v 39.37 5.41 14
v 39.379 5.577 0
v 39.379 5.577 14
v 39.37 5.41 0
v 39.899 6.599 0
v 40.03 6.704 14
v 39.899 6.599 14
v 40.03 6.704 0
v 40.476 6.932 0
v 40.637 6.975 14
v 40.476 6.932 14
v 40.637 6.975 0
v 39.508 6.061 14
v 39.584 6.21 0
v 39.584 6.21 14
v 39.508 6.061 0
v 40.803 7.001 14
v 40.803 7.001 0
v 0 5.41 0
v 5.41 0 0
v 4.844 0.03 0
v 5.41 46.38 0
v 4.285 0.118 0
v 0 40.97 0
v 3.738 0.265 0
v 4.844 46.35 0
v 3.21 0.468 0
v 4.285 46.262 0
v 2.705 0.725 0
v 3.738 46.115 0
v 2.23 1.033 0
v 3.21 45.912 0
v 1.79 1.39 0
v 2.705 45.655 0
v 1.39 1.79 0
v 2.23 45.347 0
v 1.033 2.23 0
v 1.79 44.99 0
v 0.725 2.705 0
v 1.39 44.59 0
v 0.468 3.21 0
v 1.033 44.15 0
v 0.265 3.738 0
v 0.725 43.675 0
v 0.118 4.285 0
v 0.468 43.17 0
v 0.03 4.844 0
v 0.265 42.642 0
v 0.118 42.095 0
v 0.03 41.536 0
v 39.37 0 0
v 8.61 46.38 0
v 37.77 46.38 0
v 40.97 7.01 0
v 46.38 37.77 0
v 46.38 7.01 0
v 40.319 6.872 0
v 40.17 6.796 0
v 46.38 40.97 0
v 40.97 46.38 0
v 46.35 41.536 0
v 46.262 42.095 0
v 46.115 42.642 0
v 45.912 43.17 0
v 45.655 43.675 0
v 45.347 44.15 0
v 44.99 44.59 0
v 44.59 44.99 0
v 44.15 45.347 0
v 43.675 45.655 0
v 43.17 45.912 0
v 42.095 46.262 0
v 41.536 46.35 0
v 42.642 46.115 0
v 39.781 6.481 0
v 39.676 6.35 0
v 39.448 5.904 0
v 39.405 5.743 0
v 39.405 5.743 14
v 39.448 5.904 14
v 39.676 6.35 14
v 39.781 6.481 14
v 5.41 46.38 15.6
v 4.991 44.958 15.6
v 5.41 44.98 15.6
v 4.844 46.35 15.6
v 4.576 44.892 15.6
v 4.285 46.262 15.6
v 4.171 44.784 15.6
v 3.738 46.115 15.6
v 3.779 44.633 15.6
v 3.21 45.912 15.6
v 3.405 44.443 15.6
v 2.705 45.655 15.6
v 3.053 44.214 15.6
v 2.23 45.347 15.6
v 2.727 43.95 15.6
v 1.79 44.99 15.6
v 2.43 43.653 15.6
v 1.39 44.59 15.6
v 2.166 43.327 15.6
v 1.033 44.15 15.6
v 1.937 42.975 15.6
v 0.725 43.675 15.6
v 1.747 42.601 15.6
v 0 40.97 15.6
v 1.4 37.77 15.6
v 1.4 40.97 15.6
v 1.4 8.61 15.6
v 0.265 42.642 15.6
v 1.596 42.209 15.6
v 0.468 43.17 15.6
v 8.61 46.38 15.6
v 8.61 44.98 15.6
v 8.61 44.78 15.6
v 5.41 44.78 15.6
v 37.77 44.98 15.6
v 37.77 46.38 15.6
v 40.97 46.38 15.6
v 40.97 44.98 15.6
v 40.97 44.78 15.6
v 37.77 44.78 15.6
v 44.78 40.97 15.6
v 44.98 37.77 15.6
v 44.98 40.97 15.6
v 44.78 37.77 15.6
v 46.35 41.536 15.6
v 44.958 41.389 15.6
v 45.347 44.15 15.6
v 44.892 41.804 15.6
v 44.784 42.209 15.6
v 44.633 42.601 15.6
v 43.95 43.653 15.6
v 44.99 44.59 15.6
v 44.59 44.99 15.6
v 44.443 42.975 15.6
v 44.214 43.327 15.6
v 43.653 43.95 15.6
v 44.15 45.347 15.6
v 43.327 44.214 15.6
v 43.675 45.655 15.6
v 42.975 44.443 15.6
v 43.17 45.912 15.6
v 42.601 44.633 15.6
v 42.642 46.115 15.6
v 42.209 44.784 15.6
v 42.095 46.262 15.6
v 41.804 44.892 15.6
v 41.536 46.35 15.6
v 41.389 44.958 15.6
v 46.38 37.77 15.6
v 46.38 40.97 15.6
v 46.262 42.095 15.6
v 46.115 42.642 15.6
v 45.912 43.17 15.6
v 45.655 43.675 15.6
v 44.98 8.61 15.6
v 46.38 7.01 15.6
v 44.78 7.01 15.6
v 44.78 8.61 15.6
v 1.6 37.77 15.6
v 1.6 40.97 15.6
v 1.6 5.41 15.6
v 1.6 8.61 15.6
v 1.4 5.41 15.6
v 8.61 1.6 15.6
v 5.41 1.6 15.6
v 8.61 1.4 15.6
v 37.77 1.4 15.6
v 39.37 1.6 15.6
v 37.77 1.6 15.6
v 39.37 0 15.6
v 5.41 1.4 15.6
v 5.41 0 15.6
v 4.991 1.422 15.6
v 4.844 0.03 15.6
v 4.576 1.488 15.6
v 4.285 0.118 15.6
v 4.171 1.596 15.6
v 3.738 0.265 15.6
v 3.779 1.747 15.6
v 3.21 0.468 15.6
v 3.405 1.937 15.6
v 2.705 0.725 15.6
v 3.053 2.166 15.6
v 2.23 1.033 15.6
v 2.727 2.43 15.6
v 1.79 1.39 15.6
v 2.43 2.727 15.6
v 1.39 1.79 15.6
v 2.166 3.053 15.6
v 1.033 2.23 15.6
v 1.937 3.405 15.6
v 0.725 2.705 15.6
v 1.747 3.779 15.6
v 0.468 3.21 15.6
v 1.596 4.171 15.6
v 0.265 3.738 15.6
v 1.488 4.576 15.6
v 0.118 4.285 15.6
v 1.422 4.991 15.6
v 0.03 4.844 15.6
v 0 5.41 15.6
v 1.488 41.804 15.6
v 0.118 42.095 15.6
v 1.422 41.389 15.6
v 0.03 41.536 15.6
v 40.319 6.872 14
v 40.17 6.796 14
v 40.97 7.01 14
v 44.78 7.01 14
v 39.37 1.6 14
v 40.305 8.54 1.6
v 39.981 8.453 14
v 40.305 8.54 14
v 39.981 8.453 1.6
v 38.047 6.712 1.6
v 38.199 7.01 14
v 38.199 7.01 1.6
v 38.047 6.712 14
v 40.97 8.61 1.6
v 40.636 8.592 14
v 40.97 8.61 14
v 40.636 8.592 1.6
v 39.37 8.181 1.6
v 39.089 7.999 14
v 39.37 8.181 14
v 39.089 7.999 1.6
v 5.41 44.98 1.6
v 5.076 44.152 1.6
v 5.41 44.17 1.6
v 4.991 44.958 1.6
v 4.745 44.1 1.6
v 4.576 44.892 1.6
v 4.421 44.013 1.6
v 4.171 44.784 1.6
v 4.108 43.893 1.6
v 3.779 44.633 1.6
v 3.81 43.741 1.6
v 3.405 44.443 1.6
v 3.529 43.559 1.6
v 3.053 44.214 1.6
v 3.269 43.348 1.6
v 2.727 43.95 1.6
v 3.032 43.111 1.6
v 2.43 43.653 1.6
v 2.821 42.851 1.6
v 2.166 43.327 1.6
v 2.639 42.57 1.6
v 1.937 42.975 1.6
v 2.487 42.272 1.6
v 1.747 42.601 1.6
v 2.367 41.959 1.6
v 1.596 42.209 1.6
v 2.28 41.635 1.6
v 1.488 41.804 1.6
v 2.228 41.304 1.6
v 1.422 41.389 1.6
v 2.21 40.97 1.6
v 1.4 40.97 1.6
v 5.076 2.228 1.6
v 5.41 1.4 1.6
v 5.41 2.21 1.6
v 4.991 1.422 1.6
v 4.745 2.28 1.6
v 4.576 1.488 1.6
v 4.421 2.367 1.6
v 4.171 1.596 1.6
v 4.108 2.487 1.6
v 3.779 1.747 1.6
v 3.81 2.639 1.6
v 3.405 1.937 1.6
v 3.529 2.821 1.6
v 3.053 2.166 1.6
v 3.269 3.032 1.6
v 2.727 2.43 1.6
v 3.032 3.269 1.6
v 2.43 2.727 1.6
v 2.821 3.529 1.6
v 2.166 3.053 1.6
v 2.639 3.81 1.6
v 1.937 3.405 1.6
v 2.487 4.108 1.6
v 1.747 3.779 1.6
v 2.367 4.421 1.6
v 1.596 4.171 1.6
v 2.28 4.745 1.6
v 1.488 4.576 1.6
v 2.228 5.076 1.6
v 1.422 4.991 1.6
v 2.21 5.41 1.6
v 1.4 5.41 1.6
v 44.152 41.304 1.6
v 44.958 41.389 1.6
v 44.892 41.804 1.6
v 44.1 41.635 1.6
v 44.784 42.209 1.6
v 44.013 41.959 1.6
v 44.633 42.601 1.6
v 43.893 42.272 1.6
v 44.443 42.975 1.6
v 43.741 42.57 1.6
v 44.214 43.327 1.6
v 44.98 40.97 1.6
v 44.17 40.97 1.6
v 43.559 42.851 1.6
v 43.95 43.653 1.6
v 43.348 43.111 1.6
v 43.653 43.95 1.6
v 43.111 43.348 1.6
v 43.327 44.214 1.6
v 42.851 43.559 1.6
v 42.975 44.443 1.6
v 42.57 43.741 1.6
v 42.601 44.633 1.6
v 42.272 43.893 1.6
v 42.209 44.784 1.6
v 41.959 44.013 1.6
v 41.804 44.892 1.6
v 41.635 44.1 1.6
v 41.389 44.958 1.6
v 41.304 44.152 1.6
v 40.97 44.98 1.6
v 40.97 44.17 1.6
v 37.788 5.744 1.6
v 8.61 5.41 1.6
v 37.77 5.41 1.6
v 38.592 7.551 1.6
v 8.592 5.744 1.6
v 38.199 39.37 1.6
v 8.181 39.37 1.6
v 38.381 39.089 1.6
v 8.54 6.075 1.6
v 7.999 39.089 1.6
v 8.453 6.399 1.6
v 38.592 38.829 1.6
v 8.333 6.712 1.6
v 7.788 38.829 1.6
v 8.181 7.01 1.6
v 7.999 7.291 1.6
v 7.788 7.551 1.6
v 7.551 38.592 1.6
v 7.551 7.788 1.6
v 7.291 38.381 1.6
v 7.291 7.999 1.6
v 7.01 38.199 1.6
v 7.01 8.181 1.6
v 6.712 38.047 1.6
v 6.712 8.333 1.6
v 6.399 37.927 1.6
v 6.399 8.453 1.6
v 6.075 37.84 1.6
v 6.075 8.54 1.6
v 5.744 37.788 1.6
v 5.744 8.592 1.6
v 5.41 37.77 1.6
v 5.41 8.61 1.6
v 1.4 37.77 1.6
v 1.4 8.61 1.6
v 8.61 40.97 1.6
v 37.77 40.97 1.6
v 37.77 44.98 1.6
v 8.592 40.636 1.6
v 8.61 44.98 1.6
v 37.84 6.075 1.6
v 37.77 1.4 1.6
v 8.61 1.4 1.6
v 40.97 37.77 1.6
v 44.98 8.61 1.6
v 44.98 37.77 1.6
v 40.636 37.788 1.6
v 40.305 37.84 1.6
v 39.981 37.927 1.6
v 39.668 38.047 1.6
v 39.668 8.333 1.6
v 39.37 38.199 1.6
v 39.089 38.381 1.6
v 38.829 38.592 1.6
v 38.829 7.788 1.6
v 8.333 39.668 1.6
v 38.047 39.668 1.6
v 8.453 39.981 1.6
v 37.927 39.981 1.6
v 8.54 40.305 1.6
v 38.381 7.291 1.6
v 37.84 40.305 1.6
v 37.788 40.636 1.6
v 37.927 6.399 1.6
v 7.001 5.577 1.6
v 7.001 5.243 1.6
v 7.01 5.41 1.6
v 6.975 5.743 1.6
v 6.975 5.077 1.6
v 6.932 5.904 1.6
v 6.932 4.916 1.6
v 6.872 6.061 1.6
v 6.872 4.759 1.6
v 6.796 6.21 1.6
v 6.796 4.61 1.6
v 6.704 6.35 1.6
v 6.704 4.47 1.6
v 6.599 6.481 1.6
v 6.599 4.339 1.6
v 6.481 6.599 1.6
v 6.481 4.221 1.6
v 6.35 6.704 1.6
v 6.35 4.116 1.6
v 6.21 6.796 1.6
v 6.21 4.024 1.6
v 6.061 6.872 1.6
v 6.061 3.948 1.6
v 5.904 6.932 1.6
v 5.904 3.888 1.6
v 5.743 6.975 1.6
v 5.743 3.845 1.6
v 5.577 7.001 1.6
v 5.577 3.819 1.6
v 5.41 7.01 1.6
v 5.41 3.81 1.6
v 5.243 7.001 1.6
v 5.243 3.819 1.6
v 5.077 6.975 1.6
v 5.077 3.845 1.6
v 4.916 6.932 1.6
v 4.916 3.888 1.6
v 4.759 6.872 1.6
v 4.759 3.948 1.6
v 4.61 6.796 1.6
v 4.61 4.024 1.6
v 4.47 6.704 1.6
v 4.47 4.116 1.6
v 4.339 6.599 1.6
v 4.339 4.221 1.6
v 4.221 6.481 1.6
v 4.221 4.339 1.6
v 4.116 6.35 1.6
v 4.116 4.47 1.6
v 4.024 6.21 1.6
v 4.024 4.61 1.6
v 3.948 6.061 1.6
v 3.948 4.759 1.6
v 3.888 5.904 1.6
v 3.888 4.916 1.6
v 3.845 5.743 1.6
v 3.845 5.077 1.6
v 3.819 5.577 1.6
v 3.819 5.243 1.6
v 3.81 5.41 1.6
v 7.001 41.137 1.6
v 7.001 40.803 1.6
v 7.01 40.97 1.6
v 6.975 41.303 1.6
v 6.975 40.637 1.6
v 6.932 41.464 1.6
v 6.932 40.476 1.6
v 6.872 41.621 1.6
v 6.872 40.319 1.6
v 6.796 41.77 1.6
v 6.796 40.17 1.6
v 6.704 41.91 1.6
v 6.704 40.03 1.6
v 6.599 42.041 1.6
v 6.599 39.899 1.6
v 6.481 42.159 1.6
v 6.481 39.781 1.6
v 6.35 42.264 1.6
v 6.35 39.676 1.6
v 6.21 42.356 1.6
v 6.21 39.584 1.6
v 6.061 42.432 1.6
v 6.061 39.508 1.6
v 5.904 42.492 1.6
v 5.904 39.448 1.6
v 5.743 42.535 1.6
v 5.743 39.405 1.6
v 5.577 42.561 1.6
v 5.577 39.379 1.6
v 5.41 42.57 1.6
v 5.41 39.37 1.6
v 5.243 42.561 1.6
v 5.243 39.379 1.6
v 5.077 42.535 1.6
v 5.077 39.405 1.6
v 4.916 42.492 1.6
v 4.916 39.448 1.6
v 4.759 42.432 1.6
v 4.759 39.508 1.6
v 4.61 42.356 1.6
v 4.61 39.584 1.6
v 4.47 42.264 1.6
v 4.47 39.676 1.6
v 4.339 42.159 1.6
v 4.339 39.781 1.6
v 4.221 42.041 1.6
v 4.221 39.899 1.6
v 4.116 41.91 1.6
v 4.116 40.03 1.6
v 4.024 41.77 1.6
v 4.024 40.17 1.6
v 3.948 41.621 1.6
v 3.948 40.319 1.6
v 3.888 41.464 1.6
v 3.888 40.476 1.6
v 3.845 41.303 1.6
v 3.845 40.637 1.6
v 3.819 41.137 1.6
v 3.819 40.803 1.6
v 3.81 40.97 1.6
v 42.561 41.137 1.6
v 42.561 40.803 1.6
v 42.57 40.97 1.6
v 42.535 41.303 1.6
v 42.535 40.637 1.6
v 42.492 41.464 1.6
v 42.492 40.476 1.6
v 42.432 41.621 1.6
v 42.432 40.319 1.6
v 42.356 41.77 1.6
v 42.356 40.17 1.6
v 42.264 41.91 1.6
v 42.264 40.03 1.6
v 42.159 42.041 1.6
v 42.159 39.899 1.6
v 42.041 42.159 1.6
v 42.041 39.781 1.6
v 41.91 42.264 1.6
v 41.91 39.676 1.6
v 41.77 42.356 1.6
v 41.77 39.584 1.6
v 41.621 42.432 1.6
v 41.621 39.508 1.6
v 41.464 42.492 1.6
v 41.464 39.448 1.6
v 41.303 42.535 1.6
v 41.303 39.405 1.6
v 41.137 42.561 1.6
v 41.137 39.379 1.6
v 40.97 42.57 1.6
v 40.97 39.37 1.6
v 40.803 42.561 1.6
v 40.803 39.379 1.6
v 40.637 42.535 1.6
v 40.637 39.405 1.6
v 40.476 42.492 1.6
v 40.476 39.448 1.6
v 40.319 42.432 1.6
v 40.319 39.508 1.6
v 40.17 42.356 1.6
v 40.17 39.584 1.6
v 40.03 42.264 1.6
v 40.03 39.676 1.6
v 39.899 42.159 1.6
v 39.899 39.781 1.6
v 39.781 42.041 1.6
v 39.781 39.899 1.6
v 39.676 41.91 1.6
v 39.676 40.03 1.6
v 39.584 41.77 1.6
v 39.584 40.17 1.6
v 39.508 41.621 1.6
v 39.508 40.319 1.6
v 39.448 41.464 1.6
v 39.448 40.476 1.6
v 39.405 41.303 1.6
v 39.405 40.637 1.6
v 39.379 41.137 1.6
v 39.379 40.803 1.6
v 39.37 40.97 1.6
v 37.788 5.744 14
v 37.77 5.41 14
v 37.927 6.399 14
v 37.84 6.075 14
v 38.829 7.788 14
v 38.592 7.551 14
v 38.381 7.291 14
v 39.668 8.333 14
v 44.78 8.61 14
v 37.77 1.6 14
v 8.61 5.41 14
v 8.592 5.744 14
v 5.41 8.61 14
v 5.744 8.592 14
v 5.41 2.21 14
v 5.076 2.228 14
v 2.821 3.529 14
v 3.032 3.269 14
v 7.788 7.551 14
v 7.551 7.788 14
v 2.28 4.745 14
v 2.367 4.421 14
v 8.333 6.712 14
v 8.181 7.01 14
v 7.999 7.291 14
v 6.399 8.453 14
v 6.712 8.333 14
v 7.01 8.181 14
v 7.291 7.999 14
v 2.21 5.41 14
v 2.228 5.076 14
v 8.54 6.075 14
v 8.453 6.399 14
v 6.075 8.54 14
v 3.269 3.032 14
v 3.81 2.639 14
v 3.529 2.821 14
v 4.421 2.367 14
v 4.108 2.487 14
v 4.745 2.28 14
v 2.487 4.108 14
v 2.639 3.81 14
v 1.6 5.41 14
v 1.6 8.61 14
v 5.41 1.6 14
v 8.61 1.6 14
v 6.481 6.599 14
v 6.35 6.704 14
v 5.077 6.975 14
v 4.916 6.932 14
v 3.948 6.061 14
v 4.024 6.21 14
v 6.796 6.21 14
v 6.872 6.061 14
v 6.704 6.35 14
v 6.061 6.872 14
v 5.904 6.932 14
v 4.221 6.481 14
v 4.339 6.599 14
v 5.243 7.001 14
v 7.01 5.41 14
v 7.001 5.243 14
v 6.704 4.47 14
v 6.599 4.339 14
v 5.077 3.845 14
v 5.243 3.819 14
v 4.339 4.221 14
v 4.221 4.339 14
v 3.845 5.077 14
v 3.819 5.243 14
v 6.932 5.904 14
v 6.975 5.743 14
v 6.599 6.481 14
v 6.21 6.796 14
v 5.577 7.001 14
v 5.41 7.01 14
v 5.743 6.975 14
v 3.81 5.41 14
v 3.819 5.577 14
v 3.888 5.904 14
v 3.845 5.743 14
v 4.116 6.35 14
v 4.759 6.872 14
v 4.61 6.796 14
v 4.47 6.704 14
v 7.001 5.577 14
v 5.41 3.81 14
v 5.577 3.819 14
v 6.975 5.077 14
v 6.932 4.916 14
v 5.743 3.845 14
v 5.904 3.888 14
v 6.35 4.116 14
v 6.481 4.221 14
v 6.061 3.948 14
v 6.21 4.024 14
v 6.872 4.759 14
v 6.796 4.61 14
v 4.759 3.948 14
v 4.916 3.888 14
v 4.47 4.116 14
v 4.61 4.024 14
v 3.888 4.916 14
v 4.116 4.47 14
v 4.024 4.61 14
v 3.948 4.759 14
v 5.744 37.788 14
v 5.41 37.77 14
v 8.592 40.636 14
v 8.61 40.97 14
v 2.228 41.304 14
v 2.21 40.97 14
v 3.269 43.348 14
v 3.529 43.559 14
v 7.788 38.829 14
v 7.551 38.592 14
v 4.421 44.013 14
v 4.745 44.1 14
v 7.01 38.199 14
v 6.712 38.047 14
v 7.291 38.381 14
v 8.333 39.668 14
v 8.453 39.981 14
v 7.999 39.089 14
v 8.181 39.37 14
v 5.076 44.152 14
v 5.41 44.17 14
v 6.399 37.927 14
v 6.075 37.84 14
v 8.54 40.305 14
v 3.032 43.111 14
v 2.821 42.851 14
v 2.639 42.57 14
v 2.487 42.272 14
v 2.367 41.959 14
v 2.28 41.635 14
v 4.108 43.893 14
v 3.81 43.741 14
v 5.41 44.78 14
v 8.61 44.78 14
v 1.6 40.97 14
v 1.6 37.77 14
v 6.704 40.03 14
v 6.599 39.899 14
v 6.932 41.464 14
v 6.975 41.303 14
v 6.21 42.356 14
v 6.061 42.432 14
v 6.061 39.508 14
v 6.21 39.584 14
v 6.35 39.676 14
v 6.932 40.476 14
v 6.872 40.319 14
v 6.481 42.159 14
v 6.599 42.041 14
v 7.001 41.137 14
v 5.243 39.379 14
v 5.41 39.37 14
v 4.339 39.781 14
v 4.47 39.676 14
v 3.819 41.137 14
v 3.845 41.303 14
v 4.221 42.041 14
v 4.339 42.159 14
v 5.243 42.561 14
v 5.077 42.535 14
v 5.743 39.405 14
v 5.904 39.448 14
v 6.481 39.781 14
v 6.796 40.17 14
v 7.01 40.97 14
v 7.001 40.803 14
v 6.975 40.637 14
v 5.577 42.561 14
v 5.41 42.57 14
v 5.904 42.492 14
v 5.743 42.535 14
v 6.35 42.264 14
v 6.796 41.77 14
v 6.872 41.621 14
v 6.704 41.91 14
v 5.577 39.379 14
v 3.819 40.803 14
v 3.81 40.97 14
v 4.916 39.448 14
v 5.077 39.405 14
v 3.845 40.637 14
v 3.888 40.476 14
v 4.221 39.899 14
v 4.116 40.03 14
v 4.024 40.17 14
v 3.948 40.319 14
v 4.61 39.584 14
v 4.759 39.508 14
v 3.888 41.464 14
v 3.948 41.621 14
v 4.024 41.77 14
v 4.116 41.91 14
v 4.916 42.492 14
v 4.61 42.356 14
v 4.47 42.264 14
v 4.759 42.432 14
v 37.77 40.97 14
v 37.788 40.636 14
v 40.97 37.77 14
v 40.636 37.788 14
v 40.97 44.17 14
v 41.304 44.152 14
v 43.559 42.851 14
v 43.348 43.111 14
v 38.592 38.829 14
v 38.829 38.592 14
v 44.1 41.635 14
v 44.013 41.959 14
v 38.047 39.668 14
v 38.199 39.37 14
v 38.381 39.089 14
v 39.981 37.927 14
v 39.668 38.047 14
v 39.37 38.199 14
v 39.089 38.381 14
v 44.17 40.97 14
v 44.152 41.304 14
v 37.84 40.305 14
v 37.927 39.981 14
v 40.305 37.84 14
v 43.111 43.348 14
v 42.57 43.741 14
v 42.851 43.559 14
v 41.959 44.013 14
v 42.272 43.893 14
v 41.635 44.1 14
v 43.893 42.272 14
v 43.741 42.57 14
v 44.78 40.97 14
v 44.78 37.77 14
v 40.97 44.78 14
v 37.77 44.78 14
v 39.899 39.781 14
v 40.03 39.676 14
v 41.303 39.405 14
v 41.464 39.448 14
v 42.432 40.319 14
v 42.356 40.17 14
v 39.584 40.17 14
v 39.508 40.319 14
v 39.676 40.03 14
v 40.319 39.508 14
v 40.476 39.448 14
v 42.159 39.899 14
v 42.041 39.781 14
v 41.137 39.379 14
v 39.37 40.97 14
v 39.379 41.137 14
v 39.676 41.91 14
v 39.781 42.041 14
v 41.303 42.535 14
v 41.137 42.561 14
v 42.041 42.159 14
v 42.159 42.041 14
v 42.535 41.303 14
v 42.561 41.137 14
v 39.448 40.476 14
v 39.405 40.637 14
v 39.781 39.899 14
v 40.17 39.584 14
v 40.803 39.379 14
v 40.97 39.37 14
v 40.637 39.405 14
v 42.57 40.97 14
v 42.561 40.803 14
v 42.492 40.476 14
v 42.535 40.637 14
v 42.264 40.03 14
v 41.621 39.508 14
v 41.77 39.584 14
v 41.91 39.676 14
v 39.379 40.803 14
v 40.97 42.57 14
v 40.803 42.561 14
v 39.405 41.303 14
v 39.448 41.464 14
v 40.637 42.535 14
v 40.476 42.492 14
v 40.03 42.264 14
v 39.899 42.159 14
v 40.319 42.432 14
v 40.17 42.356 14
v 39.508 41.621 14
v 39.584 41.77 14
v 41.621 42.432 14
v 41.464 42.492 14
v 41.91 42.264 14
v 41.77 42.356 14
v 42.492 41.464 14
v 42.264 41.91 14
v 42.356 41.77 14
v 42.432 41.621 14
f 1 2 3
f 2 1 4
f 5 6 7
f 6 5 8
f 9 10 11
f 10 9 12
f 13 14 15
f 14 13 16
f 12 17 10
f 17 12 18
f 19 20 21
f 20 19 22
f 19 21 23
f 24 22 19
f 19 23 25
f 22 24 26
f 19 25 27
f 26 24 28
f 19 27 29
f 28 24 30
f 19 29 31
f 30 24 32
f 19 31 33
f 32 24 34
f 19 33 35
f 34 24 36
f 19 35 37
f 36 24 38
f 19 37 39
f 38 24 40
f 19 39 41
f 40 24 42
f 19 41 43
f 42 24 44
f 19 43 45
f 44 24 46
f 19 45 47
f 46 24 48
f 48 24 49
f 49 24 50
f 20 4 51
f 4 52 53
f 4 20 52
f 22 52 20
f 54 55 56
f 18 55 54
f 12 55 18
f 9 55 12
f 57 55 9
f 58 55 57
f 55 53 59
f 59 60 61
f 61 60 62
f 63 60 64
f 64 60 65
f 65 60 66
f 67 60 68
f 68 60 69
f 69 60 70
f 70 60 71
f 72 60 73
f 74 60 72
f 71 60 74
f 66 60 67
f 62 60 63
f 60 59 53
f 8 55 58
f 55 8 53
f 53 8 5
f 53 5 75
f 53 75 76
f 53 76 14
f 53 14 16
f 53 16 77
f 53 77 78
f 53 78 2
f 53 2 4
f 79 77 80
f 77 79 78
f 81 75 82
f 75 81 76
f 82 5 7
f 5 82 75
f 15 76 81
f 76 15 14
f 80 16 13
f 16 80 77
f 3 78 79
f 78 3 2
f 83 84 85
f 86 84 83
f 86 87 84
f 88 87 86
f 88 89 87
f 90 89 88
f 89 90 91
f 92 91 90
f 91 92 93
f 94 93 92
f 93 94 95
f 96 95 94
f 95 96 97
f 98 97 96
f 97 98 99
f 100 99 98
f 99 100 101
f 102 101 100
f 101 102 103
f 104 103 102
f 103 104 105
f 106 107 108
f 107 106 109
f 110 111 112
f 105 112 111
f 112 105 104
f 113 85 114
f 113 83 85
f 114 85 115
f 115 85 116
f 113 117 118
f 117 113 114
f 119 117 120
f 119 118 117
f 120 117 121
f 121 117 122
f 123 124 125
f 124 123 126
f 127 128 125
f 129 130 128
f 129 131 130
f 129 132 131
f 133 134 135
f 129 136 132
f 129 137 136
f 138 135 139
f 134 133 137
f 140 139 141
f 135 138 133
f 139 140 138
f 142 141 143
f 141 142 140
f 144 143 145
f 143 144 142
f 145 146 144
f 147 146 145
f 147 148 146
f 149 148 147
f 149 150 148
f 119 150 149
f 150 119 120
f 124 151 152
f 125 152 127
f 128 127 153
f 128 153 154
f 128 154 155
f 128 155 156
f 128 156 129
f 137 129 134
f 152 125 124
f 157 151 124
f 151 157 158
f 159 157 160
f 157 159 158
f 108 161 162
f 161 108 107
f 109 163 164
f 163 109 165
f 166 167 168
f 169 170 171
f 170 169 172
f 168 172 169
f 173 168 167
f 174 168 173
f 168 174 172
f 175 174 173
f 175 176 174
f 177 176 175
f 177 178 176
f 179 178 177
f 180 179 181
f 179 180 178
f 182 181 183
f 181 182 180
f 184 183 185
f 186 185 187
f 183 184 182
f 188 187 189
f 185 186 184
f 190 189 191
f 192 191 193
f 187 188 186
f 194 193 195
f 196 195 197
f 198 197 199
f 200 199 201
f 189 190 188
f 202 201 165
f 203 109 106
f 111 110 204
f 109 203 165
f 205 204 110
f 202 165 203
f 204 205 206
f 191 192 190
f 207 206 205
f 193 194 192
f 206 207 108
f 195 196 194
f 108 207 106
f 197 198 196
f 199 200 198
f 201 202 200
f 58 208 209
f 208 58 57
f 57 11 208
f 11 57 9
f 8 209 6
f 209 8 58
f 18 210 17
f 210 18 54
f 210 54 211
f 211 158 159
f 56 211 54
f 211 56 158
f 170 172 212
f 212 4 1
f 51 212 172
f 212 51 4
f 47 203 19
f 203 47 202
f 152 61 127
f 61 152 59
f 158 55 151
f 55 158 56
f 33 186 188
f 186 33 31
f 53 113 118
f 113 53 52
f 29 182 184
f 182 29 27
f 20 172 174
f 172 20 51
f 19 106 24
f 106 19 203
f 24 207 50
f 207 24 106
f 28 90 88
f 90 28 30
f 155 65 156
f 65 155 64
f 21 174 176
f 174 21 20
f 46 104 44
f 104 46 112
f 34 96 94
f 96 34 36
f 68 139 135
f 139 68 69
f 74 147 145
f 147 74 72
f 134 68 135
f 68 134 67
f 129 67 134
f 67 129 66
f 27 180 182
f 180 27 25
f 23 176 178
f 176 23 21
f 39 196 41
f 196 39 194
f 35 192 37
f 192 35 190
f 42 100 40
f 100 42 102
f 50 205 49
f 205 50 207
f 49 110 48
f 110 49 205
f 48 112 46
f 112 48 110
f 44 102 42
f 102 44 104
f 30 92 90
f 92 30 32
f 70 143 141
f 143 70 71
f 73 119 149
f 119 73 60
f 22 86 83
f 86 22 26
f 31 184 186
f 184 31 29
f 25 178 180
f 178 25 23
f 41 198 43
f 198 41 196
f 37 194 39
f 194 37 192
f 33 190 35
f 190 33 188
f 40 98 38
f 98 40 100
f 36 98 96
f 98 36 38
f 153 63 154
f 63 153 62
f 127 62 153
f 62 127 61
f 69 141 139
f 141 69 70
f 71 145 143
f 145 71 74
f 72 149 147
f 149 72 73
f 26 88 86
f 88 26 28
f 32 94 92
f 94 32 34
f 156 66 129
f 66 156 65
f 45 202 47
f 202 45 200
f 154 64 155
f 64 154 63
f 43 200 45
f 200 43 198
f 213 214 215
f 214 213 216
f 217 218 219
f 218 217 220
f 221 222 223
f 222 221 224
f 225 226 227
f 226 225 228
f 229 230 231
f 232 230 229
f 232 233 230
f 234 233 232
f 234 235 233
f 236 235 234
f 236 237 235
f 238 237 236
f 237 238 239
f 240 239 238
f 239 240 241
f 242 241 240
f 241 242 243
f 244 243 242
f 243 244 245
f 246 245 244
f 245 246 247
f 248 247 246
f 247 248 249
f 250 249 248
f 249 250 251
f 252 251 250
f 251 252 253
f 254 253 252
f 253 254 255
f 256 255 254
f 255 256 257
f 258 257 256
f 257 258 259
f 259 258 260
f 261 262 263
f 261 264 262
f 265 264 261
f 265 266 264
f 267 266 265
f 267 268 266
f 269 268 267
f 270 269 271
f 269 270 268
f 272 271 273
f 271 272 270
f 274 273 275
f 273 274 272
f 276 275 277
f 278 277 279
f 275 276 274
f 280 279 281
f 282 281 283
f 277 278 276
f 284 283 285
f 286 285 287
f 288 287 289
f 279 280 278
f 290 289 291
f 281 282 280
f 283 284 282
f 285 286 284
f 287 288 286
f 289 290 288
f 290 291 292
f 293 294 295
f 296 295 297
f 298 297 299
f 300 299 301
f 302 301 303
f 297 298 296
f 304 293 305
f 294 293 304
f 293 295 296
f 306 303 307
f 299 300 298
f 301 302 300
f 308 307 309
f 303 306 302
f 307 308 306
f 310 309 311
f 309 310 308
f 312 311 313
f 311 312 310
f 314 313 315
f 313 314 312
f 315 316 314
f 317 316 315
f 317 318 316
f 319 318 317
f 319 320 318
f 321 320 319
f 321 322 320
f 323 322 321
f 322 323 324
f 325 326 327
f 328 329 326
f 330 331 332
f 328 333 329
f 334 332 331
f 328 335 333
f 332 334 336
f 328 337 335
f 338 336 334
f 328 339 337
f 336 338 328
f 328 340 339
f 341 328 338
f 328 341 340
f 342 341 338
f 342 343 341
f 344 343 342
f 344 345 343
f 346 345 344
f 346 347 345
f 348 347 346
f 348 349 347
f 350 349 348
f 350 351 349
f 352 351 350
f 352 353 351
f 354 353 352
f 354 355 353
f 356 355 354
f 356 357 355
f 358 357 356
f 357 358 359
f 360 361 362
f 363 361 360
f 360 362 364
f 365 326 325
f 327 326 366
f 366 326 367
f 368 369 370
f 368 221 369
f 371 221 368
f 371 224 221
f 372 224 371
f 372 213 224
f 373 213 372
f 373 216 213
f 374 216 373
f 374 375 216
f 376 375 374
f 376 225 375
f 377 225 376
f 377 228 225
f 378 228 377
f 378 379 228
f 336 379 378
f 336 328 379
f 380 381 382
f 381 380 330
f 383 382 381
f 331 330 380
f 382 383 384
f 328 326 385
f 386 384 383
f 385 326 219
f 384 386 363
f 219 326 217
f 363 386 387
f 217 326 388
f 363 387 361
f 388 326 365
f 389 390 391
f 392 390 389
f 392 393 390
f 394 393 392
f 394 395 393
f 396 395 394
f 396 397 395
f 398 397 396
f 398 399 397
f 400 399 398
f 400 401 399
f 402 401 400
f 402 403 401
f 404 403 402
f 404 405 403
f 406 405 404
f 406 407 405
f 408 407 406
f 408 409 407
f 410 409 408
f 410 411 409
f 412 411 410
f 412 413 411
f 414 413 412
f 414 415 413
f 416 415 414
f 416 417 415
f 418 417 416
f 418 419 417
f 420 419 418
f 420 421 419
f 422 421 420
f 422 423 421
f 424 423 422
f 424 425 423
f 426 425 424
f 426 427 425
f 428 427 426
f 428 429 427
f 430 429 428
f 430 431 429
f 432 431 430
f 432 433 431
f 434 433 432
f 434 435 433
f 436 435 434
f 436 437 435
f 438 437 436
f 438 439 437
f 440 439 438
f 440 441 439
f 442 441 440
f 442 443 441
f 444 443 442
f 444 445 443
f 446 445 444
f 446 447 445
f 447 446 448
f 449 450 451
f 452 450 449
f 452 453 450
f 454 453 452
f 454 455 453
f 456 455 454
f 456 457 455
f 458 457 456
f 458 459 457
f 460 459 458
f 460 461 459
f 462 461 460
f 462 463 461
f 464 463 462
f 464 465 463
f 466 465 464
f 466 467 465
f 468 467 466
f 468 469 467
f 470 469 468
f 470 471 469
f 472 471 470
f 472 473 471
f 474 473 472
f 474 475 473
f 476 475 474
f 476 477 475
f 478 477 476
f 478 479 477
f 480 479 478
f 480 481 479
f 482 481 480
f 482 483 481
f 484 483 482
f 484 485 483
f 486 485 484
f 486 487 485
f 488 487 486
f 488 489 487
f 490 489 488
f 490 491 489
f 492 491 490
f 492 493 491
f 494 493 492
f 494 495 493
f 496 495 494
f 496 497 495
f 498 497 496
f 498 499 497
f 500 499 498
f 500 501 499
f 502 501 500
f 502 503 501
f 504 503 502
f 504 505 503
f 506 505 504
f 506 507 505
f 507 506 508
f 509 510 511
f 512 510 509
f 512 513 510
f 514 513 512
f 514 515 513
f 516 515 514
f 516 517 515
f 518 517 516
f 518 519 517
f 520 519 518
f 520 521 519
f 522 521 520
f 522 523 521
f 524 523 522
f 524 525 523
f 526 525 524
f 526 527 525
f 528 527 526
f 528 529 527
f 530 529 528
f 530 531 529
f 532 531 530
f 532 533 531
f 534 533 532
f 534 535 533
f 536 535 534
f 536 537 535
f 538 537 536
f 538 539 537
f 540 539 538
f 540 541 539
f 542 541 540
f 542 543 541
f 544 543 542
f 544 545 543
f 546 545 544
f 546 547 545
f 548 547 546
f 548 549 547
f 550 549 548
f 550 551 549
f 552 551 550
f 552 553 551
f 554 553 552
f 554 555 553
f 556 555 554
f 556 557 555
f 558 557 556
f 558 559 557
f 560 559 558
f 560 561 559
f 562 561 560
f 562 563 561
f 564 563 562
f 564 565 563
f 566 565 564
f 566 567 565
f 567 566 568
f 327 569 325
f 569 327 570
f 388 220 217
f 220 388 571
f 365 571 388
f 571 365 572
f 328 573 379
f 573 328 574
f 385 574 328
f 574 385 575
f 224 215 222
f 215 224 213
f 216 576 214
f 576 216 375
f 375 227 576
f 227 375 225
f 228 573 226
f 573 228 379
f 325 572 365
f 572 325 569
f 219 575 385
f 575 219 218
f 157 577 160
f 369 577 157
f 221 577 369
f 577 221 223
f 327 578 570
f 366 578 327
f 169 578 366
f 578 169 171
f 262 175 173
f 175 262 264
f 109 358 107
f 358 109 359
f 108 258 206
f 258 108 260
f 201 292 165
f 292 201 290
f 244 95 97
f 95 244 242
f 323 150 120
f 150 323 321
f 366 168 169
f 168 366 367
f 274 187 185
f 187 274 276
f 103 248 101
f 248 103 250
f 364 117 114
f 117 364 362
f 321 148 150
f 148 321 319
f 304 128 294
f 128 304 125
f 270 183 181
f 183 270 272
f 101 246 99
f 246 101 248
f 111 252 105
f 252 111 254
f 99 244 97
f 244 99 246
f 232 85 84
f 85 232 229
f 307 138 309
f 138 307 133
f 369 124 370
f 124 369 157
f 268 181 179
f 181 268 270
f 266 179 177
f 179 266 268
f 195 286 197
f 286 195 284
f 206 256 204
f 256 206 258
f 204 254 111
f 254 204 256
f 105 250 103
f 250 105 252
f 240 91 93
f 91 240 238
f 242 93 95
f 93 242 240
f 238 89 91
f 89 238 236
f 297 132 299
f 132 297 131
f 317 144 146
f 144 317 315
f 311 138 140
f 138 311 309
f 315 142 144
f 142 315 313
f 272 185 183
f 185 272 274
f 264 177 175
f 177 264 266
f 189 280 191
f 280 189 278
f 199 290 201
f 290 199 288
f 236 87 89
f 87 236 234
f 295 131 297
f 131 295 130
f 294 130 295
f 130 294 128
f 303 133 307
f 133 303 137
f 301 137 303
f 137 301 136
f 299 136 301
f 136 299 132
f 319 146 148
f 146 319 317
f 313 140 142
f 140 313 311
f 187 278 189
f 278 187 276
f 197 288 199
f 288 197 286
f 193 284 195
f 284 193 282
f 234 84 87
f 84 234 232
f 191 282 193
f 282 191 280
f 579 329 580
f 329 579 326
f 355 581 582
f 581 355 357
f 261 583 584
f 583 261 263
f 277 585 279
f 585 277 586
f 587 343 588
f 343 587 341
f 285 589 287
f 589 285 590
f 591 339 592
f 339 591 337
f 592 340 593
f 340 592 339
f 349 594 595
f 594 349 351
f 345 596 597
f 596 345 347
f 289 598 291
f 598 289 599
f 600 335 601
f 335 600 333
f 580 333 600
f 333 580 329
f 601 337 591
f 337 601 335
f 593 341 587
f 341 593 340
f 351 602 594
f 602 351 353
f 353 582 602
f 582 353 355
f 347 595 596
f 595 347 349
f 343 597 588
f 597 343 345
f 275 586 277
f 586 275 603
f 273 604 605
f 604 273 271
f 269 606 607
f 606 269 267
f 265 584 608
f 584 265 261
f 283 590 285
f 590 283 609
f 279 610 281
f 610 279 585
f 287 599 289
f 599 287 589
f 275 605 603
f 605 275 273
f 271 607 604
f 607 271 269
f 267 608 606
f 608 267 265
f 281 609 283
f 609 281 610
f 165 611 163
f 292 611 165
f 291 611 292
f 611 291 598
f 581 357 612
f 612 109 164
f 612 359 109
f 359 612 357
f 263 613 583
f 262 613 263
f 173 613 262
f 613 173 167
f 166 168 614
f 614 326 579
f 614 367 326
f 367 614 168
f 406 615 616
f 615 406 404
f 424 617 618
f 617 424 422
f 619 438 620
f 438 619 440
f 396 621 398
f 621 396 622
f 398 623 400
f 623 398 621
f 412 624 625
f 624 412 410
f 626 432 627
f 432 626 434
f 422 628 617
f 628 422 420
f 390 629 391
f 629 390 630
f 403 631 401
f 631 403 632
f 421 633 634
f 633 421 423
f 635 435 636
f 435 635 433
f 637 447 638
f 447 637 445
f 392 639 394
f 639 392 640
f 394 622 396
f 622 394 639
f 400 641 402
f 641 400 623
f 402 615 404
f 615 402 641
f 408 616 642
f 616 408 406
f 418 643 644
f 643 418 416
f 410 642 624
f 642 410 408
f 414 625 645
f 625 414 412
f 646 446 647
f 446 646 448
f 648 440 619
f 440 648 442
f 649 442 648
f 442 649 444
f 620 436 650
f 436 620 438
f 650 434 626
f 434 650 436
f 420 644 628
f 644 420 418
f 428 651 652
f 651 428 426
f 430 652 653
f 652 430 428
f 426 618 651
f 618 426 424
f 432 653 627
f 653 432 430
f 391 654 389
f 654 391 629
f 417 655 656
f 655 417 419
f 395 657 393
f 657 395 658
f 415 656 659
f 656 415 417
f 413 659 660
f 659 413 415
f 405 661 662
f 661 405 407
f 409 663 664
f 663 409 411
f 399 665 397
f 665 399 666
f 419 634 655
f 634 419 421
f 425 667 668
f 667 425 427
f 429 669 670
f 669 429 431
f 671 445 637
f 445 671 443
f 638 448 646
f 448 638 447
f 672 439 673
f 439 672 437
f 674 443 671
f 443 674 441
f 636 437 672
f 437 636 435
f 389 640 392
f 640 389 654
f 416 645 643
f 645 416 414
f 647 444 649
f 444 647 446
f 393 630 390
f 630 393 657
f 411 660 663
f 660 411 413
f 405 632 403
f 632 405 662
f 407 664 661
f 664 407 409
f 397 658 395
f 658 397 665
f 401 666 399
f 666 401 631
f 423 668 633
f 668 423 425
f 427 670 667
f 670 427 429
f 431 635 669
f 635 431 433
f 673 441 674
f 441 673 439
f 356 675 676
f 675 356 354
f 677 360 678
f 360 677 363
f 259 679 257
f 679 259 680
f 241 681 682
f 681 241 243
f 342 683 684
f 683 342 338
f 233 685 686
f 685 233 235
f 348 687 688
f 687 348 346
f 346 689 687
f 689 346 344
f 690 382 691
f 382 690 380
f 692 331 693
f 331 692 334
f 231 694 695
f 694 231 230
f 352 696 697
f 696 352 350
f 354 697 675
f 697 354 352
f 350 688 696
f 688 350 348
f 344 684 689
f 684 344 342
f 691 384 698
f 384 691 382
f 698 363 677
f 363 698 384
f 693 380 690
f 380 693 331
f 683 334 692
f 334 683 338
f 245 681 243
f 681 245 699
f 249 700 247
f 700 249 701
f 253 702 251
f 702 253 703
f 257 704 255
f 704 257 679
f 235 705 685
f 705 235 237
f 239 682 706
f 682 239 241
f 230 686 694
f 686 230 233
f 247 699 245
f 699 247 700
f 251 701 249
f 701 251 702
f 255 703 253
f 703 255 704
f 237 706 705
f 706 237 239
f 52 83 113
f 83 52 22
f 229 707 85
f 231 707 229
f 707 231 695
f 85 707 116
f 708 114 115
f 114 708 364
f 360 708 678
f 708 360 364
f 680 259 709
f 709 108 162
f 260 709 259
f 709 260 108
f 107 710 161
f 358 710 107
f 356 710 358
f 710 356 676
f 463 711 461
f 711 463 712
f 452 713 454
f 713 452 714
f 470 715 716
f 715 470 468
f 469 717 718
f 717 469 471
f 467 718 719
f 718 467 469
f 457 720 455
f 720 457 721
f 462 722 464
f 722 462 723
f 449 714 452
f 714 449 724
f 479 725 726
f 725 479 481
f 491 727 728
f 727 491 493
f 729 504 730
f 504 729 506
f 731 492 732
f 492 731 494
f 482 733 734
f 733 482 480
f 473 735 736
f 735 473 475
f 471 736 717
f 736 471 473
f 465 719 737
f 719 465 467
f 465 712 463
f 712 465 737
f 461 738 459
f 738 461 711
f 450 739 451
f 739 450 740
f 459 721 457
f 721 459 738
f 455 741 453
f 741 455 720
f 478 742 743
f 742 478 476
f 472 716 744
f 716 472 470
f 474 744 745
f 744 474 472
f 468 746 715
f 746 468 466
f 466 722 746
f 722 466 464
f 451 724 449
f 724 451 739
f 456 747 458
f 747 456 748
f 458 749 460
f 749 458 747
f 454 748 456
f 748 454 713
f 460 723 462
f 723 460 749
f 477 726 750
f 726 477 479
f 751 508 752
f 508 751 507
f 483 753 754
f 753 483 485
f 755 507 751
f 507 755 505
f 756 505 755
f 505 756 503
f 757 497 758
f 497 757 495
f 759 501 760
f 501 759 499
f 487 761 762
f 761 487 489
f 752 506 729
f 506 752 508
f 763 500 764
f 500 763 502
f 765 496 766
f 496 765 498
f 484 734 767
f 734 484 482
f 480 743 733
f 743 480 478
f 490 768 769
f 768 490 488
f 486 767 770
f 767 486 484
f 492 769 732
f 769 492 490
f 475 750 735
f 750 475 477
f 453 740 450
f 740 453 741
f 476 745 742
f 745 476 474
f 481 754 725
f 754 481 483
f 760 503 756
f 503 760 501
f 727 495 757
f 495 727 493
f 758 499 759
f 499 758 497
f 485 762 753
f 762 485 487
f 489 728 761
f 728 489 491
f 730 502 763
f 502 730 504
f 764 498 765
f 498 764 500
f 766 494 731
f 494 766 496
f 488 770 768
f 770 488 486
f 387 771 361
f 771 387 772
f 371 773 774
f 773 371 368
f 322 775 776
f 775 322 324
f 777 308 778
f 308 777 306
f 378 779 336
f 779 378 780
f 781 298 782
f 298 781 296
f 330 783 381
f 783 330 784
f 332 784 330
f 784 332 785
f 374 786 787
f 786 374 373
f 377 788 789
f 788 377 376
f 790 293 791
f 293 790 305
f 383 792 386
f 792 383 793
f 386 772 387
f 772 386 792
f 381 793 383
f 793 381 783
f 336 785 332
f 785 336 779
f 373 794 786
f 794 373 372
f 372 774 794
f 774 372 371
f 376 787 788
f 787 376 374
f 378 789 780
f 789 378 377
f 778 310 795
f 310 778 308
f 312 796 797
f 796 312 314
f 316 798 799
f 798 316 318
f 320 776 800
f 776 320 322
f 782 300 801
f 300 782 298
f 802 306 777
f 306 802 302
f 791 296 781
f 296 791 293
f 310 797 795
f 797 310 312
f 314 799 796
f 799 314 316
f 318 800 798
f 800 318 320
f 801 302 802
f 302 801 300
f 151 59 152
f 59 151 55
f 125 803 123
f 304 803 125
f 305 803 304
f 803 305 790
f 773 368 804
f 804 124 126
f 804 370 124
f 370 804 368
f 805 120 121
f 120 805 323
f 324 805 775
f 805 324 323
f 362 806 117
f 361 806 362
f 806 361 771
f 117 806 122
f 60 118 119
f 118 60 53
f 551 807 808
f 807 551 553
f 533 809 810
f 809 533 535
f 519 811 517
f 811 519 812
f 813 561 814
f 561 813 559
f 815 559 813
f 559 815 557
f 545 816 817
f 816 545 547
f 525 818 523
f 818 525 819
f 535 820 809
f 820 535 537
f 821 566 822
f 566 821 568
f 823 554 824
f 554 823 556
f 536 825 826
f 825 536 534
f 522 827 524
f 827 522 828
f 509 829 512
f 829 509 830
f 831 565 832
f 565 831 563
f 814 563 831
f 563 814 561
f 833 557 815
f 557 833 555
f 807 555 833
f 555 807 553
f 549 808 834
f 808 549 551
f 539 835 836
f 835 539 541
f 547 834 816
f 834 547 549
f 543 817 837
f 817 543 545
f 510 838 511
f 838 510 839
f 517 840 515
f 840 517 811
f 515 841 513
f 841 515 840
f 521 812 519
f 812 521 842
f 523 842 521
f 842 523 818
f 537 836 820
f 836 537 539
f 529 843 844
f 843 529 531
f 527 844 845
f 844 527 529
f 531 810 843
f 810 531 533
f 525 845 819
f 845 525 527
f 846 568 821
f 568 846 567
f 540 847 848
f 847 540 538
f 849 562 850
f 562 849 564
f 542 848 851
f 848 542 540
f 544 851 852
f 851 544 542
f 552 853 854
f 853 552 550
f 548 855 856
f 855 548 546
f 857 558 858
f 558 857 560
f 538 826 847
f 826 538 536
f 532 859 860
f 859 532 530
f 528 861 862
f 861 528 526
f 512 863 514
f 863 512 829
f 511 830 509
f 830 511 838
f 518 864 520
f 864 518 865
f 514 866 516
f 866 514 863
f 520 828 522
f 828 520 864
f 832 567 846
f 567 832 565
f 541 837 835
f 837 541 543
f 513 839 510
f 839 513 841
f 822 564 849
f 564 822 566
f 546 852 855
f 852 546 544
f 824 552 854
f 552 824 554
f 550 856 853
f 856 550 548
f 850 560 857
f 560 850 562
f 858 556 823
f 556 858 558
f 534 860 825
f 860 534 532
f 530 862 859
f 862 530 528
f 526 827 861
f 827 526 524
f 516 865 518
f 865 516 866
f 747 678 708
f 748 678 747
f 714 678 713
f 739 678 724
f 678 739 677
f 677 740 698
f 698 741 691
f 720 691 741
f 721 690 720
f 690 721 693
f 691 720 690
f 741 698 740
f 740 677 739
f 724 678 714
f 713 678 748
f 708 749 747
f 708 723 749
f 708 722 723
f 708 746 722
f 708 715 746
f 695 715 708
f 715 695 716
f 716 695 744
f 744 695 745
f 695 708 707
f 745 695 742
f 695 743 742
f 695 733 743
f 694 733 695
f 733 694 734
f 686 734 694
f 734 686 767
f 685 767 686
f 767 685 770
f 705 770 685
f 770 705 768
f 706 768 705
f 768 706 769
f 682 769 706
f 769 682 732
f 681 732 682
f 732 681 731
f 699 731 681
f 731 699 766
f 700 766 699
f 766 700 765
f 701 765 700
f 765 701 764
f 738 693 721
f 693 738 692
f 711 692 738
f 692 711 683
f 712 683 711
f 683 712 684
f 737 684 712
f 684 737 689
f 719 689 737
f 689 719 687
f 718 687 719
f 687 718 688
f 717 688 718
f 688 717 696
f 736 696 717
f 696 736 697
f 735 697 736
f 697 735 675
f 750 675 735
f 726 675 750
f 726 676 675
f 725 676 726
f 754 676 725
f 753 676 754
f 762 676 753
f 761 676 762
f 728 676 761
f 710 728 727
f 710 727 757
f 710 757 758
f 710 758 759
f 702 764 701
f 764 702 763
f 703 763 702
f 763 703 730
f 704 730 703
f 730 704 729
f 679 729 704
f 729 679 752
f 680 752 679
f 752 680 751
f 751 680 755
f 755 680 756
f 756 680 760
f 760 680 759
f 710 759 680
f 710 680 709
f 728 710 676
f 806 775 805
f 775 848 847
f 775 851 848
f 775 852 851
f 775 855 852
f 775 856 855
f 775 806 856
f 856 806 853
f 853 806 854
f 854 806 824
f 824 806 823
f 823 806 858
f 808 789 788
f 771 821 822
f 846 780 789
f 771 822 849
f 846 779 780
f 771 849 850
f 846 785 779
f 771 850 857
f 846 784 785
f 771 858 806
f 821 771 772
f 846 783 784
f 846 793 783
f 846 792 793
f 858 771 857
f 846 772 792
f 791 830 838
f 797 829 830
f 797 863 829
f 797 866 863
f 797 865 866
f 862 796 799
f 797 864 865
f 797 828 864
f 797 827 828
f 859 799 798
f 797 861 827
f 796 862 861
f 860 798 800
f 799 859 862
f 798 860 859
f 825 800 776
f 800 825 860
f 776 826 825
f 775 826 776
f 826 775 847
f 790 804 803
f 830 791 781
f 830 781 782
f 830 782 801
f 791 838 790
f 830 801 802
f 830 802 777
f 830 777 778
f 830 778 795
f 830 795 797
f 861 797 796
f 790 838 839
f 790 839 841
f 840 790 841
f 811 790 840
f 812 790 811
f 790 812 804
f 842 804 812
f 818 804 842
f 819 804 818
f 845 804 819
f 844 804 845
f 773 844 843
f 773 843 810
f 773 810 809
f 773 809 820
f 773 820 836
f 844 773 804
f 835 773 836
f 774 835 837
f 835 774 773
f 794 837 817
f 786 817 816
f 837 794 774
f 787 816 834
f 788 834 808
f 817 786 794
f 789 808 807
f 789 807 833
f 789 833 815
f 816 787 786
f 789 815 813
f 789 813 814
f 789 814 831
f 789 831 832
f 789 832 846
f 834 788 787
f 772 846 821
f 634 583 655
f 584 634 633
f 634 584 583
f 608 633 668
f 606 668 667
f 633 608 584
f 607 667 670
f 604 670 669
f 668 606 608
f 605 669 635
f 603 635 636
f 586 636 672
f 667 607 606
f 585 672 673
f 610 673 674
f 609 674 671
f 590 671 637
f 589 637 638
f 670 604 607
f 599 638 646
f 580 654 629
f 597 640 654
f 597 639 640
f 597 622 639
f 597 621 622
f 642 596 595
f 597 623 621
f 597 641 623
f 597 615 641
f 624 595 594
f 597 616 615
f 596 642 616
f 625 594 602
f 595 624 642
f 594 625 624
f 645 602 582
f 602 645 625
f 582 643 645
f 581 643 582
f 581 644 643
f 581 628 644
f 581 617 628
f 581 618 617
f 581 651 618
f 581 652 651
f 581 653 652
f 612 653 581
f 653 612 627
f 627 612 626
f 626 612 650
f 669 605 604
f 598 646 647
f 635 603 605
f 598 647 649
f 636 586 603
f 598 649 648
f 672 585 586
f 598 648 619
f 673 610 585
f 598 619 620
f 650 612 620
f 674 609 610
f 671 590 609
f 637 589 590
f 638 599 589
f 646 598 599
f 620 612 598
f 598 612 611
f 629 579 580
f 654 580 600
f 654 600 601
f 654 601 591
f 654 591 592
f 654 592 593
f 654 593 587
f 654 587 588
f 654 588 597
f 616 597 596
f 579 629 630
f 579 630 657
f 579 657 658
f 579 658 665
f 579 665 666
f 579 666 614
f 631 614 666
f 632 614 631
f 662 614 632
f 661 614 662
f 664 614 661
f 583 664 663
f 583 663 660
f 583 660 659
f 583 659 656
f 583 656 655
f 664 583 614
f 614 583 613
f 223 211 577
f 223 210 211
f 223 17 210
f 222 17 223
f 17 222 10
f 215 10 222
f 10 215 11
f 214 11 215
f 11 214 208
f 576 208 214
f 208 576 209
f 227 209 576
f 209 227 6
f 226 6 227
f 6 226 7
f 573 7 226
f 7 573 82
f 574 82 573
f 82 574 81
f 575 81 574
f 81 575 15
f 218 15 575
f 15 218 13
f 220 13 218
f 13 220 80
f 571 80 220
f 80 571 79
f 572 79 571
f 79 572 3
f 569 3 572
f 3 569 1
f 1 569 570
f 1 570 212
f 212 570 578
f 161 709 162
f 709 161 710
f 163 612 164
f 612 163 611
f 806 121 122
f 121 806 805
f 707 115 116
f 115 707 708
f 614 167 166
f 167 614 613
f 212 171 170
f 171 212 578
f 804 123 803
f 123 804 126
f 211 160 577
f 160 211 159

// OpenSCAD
$fn=60;
//distance between the holes of the pcb
holeDistance=35.56;
//tolerance for PCB carve, since the PDB doesn't fit well (quite a dirty fix)
tolerancePcb=0.2;
//thickness of the walls
thickness=1.6;
//distance between hole centers and pcb edge
holeToPcb=3.81;
//distance between hole centers and wall exterior
holeToExt=holeToPcb+thickness;
//radius of PCB holes
holeRadius=1.6;
//height of the whole bottom, from floor to top
height=14+thickness;

module exterior(){
    difference(){
        hull(){
        translate([holeToExt,holeToExt,0]) cylinder(r=holeToExt,h=height);
        translate([holeToExt,holeToExt+holeDistance,0]) cylinder(r=holeToExt,h=height);
        translate([holeToExt+holeDistance,holeToExt,0]) cylinder(r=holeToExt,h=height);
        translate([holeToExt+holeDistance,holeToExt+holeDistance,0]) cylinder(r=holeToExt,h=height);
        }
        translate ([holeToExt+holeDistance,holeToExt,0]) cornerCarve();
    }
}
module carve(){
    difference(){
  hull(){
    translate([holeToExt,holeToExt,0]) cylinder(r=holeToPcb+tolerancePcb,h=height);
   translate([holeToExt,holeToExt+holeDistance,0]) cylinder(r=holeToPcb+tolerancePcb,h=height);
   translate([holeToExt+holeDistance,holeToExt,0]) cylinder(r=holeToPcb+tolerancePcb,h=height);
   translate([holeToExt+holeDistance,holeToExt+holeDistance,0]) cylinder(r=holeToPcb+tolerancePcb,h=height);
    }
    translate ([holeToExt+holeDistance,holeToExt,0]) cornerCarveInt();
    }
}

//carving the pcb hole   
module pcbCarve(){
    hull(){
    translate([holeToExt,holeToExt,0]) cylinder(r=holeToPcb,h=height);
   translate([holeToExt,holeToExt+holeDistance,0]) cylinder(r=holeToPcb,h=height);
   translate([holeToExt+holeDistance,holeToExt,0]) cylinder(r=holeToPcb,h=height);
   translate([holeToExt+holeDistance,holeToExt+holeDistance,0]) cylinder(r=holeToPcb,h=height);
    }
  }
  
module support(){
difference(){
    union(){
        cylinder(r=holeRadius+thickness,h=height);
        translate([-holeToExt,0,0]) cube([holeToExt,holeRadius+thickness,height]);
         translate([0,-holeToExt,0]) cube([holeRadius+thickness,holeToExt,height]);
    }
translate([0,0,thickness])cylinder(r=holeRadius,h=height);
}
}
module cornerCarve() {
cylinder(r=holeRadius,h=height);
cube([holeToExt,holeRadius,height]);
translate([-holeRadius,-holeToExt-1,0]) cube([holeRadius+holeToExt,holeToExt+1,height]);
}
module cornerCarveInt() {
cylinder(r=holeRadius+thickness,h=height);
cube([holeToExt+thickness,holeRadius+thickness,height]);
translate([-(holeRadius+thickness),-(holeToExt+thickness+1),0]) cube([holeRadius+holeToExt+thickness,holeToExt+thickness+1,height]);
}
//we make the lid in here
difference(){
union(){
difference() {
    exterior();
    translate ([0,0,thickness]) carve();
    }
    
    translate([holeToExt,holeToExt,0]) support();
    translate([holeToExt,holeToExt+holeDistance,0])  rotate([0,0,-90]) support();
    translate([holeToExt+holeDistance,holeToExt+holeDistance,0]) rotate([0,0,180]) support();
}
 translate ([0,0,height-thickness]) pcbCarve();
}
